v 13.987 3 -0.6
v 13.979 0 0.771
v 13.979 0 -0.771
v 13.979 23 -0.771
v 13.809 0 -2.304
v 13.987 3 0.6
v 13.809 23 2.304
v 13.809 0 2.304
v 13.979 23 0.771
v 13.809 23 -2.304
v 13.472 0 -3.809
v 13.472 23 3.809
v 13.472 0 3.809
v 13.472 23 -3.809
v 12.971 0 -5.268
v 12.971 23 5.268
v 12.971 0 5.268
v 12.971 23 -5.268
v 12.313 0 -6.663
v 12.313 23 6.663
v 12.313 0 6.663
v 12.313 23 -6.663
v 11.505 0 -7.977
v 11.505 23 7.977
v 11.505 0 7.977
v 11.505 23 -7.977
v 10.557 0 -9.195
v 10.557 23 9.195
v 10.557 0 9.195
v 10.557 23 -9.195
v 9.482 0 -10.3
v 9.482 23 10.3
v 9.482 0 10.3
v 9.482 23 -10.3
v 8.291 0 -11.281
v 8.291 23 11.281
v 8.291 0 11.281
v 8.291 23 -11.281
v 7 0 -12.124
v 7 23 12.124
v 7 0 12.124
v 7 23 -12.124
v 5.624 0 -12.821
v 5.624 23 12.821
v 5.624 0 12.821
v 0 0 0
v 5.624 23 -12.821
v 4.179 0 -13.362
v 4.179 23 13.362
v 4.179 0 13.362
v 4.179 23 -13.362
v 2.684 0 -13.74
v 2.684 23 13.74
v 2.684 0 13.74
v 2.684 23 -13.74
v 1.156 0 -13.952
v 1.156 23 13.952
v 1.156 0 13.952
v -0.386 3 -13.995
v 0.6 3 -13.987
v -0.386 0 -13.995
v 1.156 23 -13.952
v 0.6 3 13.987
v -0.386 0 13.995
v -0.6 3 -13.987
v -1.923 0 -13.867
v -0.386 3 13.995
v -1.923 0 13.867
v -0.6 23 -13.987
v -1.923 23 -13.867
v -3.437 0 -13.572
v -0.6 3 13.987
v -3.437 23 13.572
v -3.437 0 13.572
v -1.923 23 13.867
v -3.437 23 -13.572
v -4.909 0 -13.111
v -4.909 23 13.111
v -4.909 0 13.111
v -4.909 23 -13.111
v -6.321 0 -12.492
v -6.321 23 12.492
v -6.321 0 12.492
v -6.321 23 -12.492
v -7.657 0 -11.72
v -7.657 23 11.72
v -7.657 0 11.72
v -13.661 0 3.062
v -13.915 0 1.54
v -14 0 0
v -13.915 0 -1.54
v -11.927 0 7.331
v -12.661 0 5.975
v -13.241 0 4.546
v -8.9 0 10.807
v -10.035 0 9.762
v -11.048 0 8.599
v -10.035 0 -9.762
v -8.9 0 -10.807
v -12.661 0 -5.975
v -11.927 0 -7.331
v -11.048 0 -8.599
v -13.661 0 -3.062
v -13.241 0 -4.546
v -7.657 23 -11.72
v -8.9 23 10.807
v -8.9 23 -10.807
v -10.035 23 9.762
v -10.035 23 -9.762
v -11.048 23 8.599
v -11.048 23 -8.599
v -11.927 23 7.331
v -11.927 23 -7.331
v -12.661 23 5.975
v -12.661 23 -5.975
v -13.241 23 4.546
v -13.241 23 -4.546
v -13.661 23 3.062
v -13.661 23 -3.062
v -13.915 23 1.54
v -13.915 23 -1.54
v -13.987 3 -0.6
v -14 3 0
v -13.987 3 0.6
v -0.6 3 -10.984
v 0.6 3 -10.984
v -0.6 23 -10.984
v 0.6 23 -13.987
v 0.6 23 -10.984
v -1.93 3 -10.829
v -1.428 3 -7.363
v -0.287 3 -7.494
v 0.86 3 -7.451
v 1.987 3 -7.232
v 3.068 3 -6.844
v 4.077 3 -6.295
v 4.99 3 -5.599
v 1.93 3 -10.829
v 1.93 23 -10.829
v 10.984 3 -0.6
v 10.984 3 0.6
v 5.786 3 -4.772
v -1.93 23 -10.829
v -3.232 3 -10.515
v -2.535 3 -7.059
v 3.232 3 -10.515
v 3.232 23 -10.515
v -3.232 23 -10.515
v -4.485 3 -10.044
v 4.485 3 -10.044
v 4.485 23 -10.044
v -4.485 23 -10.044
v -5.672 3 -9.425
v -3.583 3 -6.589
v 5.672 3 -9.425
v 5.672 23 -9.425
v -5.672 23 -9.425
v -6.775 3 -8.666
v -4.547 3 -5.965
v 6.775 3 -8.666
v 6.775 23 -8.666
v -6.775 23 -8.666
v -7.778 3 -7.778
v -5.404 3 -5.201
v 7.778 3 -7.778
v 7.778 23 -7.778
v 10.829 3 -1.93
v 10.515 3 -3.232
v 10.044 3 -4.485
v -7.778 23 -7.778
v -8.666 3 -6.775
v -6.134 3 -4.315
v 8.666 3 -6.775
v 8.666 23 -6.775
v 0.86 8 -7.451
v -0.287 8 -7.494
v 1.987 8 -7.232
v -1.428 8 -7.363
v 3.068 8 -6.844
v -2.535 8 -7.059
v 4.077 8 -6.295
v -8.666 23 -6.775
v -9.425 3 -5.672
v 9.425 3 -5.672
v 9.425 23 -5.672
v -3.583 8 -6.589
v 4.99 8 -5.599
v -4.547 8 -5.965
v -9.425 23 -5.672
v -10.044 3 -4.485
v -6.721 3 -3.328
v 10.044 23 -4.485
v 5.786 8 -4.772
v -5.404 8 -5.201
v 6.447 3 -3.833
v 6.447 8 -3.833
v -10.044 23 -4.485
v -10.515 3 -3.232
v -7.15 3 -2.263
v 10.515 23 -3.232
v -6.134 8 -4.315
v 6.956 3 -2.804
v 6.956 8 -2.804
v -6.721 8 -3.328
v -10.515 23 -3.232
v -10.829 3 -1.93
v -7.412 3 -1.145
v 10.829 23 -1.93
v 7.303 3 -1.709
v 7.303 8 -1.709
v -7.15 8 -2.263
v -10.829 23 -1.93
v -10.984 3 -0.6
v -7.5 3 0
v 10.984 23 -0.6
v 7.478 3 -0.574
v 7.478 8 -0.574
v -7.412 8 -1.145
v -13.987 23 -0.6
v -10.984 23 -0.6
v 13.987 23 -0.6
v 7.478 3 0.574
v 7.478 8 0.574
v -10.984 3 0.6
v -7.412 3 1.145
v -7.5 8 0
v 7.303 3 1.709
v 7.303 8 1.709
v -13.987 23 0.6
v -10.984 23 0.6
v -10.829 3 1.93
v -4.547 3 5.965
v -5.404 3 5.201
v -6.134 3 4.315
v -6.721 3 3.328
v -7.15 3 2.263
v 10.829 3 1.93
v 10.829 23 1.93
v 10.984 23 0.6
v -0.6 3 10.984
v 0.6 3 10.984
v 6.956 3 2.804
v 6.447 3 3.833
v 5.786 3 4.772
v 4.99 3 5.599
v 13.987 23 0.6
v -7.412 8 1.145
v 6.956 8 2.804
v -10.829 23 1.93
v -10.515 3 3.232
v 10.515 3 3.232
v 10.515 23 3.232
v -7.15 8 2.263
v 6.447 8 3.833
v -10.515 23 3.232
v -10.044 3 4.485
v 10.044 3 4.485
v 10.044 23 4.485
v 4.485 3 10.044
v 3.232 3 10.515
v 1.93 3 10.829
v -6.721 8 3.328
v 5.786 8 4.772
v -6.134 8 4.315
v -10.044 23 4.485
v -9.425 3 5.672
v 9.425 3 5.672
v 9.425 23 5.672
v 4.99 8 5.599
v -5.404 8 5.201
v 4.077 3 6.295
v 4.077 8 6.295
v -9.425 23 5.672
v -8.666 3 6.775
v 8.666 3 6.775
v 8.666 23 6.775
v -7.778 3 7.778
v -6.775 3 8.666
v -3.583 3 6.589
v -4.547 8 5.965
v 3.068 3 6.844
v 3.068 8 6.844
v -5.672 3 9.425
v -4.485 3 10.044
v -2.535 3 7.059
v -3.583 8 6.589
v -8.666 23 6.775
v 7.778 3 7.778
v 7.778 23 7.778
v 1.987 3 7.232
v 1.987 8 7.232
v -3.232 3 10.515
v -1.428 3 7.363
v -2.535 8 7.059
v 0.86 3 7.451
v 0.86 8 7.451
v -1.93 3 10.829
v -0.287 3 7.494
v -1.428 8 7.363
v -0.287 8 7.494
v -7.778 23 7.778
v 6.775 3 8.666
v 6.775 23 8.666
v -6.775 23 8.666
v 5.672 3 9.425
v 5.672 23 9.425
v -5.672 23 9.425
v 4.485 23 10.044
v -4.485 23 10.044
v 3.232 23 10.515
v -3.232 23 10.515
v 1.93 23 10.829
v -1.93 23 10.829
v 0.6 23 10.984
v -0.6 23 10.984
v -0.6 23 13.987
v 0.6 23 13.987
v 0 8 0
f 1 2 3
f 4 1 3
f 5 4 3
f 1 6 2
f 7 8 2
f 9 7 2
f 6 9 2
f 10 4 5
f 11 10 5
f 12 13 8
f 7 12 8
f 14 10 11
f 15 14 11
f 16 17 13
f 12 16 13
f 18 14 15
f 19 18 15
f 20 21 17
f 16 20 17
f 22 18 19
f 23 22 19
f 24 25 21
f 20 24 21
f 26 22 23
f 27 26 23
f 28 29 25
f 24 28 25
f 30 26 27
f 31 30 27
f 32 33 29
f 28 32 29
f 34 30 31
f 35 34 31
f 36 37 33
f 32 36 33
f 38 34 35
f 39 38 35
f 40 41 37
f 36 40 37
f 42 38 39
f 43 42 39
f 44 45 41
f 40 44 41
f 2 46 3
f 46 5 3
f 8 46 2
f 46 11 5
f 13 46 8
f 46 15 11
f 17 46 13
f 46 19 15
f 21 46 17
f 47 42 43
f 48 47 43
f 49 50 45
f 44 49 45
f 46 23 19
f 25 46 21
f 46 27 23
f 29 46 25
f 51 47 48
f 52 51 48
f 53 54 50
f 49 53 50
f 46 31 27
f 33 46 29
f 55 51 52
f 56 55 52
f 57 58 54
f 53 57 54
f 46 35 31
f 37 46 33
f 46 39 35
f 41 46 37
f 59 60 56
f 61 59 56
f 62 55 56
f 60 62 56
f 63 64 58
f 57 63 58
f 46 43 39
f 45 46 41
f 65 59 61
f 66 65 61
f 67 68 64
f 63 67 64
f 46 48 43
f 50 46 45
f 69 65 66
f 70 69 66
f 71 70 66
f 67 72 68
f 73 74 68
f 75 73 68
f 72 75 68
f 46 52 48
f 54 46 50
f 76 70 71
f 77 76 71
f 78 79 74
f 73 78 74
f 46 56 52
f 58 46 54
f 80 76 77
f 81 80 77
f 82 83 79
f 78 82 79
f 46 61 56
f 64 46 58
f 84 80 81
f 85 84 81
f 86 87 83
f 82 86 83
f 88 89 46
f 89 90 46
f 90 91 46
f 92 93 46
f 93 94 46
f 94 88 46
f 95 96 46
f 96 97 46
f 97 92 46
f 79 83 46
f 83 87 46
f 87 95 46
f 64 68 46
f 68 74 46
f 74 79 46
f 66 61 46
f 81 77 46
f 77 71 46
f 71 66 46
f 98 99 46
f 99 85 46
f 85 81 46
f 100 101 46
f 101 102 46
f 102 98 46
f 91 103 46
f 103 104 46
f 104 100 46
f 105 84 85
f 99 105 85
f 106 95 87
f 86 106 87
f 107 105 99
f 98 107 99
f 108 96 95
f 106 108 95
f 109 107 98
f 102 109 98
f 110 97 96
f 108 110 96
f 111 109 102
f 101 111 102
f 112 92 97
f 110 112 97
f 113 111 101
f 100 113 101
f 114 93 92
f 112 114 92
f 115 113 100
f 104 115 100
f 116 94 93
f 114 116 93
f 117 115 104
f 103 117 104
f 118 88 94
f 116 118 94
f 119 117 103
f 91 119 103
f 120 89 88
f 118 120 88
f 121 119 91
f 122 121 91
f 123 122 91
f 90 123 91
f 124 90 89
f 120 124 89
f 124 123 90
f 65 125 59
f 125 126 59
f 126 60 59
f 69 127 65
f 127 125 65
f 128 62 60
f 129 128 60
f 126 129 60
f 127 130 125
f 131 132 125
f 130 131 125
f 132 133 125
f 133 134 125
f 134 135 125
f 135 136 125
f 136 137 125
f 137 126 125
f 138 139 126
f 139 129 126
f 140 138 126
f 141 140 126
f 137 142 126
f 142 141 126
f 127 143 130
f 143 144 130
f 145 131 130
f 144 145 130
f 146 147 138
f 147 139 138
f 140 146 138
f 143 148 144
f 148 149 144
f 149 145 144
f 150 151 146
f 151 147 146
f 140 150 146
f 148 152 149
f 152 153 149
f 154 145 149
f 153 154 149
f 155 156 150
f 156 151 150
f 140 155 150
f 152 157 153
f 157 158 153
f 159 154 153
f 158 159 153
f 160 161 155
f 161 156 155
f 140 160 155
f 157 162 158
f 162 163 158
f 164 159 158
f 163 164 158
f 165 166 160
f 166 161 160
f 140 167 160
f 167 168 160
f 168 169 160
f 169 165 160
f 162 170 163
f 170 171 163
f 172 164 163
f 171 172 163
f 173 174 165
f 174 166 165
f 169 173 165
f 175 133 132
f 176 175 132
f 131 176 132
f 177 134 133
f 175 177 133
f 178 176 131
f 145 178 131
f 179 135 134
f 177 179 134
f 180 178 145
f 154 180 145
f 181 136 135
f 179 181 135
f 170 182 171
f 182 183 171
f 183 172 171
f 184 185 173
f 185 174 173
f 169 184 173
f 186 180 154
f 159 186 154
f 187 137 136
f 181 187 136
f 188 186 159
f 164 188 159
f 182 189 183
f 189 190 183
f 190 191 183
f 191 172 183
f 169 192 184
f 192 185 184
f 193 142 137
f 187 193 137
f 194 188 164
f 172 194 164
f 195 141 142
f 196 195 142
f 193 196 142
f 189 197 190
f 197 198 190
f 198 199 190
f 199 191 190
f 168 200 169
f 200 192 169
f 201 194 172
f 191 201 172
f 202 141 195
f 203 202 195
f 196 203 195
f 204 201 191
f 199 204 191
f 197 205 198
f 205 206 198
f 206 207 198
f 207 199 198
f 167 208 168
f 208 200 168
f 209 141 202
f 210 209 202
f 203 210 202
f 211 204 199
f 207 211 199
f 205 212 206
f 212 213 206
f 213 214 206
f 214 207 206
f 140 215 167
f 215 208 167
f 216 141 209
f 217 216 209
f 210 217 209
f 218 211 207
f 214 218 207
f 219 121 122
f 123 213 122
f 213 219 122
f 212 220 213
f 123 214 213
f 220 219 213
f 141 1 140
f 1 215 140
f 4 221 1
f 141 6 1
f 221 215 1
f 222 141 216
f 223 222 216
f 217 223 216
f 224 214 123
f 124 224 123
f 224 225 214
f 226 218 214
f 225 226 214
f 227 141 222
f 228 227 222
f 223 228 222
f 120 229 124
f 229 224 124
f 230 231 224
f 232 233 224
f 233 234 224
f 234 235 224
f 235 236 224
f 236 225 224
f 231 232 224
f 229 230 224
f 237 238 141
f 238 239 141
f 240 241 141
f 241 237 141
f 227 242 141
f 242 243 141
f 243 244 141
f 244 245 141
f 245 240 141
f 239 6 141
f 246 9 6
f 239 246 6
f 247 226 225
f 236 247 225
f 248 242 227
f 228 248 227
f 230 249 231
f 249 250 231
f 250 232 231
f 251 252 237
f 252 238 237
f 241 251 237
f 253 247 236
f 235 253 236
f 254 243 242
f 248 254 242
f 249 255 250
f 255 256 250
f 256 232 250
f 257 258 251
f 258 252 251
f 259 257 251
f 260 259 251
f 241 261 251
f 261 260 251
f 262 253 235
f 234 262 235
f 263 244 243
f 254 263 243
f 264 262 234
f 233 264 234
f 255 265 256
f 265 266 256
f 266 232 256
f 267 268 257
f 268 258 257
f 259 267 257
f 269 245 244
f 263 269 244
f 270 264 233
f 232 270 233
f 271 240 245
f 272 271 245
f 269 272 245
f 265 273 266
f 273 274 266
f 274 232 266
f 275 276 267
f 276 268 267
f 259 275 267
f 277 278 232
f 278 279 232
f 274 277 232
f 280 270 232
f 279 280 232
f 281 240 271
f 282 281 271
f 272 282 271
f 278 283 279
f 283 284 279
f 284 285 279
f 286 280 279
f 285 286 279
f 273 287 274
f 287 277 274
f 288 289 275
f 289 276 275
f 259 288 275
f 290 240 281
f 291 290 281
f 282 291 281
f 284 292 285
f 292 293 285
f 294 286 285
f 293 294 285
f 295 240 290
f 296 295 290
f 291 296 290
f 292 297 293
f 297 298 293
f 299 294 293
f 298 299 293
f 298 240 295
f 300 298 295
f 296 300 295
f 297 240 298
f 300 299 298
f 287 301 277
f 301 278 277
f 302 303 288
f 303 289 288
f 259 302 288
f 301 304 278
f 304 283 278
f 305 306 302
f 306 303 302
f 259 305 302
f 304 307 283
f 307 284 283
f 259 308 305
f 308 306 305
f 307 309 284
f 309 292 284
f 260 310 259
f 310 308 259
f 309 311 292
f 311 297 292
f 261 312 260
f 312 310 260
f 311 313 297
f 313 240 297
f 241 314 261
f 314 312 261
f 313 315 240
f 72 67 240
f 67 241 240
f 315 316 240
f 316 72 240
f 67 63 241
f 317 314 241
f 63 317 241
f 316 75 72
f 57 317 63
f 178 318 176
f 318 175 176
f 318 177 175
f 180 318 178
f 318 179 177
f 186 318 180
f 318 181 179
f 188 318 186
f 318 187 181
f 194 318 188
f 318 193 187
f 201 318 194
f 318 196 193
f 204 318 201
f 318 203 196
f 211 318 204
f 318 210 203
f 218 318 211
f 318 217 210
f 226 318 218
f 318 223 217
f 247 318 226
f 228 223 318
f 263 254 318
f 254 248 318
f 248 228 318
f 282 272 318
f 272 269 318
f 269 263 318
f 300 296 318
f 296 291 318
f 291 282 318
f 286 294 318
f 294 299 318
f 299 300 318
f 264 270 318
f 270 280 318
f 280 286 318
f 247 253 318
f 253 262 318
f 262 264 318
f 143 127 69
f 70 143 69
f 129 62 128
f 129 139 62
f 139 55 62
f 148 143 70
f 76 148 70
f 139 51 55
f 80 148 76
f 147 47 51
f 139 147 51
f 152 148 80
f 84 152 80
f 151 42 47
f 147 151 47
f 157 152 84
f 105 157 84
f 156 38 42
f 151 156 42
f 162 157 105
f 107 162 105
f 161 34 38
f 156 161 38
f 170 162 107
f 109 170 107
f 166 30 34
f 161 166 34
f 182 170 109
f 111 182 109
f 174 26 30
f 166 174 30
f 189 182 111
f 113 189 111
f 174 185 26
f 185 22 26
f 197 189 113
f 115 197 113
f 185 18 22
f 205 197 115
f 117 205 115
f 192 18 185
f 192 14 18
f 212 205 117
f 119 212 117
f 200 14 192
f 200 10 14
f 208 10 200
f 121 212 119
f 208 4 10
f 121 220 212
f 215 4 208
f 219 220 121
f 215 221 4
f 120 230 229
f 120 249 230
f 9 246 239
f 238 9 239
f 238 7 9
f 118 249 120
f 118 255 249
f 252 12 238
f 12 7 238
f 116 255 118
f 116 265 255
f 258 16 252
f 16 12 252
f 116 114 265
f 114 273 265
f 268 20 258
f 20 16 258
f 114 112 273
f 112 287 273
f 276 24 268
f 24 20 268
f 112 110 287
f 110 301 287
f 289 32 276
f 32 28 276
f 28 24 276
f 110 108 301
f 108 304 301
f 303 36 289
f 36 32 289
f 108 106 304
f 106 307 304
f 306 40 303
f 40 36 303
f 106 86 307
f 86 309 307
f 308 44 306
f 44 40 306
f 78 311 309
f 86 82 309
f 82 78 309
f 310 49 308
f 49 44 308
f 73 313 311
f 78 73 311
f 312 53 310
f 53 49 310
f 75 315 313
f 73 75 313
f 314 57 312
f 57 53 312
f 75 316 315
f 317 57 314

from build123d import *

# Parameters (mm, degrees)
CUT_EXTRUDE1_DEPTH = 20


with BuildPart() as part:
    # Sketch2 → Revolve1 (revolve)
    with BuildSketch(Plane.XY, mode=Mode.PRIVATE) as revolve1_sk:
        Polygon((0, 0), (14, 0), (14, 23), (11, 23), (11, 3), (7.5, 3), (7.5, 8), (0, 8), align=None)
    revolve(revolve1_sk.sketch.rotate(Axis((0, 8, 0), (0, -1, 0)), 180), axis=Axis((0, 8, 0), (0, -1, 0)))

    # Sketch3 → Cut-Extrude1 (cut)
    with BuildSketch(Plane(origin=(0, 23, 0), x_dir=(1, 0, 0), z_dir=(0, 1, 0))):
        with BuildLine():
            ThreePointArc((-0.6, -13.987136948), (-0.300068933, -13.996783868), (0, -14))
            ThreePointArc((0, -14), (0.300068933, -13.996783868), (0.6, -13.987136948))
            Line((0.6, -13.987136948), (0.6, -10.983624174))
            ThreePointArc((0.6, -10.983624174), (0, -11), (-0.6, -10.983624174))
            Line((-0.6, -10.983624174), (-0.6, -13.987136948))
        make_face()
        with BuildLine():
            Line((-0.6, 13.987136948), (-0.6, 10.983624174))
            ThreePointArc((-0.6, 10.983624174), (0, 11), (0.6, 10.983624174))
            Line((0.6, 10.983624174), (0.6, 13.987136948))
            ThreePointArc((0.6, 13.987136948), (0.300068933, 13.996783868), (0, 14))
            ThreePointArc((0, 14), (-0.300068933, 13.996783868), (-0.6, 13.987136948))
        make_face()
        with BuildLine():
            ThreePointArc((-14, 5.1e-08), (-13.996783868, -0.300068907), (-13.987136948, -0.6))
            Line((-13.987136948, -0.6), (-10.983624174, -0.6))
            ThreePointArc((-10.983624174, -0.6), (-11, 0), (-10.983624174, 0.6))
            Line((-10.983624174, 0.6), (-13.987136948, 0.6))
            ThreePointArc((-13.987136948, 0.6), (-13.996783867, 0.300068958), (-14, 5.1e-08))
        make_face()
        with BuildLine():
            Line((10.983624174, -0.6), (13.987136948, -0.6))
            ThreePointArc((13.987136948, -0.6), (13.996783868, -0.300068933), (14, 0))
            ThreePointArc((14, 0), (13.996783868, 0.300068933), (13.987136948, 0.6))
            Line((13.987136948, 0.6), (10.983624174, 0.6))
            ThreePointArc((10.983624174, 0.6), (10.995905281, 0.300111716), (11, 0))
            ThreePointArc((11, 0), (10.995905281, -0.300111716), (10.983624174, -0.6))
        make_face()
    extrude(amount=-CUT_EXTRUDE1_DEPTH, mode=Mode.SUBTRACT)


solid = part.part
